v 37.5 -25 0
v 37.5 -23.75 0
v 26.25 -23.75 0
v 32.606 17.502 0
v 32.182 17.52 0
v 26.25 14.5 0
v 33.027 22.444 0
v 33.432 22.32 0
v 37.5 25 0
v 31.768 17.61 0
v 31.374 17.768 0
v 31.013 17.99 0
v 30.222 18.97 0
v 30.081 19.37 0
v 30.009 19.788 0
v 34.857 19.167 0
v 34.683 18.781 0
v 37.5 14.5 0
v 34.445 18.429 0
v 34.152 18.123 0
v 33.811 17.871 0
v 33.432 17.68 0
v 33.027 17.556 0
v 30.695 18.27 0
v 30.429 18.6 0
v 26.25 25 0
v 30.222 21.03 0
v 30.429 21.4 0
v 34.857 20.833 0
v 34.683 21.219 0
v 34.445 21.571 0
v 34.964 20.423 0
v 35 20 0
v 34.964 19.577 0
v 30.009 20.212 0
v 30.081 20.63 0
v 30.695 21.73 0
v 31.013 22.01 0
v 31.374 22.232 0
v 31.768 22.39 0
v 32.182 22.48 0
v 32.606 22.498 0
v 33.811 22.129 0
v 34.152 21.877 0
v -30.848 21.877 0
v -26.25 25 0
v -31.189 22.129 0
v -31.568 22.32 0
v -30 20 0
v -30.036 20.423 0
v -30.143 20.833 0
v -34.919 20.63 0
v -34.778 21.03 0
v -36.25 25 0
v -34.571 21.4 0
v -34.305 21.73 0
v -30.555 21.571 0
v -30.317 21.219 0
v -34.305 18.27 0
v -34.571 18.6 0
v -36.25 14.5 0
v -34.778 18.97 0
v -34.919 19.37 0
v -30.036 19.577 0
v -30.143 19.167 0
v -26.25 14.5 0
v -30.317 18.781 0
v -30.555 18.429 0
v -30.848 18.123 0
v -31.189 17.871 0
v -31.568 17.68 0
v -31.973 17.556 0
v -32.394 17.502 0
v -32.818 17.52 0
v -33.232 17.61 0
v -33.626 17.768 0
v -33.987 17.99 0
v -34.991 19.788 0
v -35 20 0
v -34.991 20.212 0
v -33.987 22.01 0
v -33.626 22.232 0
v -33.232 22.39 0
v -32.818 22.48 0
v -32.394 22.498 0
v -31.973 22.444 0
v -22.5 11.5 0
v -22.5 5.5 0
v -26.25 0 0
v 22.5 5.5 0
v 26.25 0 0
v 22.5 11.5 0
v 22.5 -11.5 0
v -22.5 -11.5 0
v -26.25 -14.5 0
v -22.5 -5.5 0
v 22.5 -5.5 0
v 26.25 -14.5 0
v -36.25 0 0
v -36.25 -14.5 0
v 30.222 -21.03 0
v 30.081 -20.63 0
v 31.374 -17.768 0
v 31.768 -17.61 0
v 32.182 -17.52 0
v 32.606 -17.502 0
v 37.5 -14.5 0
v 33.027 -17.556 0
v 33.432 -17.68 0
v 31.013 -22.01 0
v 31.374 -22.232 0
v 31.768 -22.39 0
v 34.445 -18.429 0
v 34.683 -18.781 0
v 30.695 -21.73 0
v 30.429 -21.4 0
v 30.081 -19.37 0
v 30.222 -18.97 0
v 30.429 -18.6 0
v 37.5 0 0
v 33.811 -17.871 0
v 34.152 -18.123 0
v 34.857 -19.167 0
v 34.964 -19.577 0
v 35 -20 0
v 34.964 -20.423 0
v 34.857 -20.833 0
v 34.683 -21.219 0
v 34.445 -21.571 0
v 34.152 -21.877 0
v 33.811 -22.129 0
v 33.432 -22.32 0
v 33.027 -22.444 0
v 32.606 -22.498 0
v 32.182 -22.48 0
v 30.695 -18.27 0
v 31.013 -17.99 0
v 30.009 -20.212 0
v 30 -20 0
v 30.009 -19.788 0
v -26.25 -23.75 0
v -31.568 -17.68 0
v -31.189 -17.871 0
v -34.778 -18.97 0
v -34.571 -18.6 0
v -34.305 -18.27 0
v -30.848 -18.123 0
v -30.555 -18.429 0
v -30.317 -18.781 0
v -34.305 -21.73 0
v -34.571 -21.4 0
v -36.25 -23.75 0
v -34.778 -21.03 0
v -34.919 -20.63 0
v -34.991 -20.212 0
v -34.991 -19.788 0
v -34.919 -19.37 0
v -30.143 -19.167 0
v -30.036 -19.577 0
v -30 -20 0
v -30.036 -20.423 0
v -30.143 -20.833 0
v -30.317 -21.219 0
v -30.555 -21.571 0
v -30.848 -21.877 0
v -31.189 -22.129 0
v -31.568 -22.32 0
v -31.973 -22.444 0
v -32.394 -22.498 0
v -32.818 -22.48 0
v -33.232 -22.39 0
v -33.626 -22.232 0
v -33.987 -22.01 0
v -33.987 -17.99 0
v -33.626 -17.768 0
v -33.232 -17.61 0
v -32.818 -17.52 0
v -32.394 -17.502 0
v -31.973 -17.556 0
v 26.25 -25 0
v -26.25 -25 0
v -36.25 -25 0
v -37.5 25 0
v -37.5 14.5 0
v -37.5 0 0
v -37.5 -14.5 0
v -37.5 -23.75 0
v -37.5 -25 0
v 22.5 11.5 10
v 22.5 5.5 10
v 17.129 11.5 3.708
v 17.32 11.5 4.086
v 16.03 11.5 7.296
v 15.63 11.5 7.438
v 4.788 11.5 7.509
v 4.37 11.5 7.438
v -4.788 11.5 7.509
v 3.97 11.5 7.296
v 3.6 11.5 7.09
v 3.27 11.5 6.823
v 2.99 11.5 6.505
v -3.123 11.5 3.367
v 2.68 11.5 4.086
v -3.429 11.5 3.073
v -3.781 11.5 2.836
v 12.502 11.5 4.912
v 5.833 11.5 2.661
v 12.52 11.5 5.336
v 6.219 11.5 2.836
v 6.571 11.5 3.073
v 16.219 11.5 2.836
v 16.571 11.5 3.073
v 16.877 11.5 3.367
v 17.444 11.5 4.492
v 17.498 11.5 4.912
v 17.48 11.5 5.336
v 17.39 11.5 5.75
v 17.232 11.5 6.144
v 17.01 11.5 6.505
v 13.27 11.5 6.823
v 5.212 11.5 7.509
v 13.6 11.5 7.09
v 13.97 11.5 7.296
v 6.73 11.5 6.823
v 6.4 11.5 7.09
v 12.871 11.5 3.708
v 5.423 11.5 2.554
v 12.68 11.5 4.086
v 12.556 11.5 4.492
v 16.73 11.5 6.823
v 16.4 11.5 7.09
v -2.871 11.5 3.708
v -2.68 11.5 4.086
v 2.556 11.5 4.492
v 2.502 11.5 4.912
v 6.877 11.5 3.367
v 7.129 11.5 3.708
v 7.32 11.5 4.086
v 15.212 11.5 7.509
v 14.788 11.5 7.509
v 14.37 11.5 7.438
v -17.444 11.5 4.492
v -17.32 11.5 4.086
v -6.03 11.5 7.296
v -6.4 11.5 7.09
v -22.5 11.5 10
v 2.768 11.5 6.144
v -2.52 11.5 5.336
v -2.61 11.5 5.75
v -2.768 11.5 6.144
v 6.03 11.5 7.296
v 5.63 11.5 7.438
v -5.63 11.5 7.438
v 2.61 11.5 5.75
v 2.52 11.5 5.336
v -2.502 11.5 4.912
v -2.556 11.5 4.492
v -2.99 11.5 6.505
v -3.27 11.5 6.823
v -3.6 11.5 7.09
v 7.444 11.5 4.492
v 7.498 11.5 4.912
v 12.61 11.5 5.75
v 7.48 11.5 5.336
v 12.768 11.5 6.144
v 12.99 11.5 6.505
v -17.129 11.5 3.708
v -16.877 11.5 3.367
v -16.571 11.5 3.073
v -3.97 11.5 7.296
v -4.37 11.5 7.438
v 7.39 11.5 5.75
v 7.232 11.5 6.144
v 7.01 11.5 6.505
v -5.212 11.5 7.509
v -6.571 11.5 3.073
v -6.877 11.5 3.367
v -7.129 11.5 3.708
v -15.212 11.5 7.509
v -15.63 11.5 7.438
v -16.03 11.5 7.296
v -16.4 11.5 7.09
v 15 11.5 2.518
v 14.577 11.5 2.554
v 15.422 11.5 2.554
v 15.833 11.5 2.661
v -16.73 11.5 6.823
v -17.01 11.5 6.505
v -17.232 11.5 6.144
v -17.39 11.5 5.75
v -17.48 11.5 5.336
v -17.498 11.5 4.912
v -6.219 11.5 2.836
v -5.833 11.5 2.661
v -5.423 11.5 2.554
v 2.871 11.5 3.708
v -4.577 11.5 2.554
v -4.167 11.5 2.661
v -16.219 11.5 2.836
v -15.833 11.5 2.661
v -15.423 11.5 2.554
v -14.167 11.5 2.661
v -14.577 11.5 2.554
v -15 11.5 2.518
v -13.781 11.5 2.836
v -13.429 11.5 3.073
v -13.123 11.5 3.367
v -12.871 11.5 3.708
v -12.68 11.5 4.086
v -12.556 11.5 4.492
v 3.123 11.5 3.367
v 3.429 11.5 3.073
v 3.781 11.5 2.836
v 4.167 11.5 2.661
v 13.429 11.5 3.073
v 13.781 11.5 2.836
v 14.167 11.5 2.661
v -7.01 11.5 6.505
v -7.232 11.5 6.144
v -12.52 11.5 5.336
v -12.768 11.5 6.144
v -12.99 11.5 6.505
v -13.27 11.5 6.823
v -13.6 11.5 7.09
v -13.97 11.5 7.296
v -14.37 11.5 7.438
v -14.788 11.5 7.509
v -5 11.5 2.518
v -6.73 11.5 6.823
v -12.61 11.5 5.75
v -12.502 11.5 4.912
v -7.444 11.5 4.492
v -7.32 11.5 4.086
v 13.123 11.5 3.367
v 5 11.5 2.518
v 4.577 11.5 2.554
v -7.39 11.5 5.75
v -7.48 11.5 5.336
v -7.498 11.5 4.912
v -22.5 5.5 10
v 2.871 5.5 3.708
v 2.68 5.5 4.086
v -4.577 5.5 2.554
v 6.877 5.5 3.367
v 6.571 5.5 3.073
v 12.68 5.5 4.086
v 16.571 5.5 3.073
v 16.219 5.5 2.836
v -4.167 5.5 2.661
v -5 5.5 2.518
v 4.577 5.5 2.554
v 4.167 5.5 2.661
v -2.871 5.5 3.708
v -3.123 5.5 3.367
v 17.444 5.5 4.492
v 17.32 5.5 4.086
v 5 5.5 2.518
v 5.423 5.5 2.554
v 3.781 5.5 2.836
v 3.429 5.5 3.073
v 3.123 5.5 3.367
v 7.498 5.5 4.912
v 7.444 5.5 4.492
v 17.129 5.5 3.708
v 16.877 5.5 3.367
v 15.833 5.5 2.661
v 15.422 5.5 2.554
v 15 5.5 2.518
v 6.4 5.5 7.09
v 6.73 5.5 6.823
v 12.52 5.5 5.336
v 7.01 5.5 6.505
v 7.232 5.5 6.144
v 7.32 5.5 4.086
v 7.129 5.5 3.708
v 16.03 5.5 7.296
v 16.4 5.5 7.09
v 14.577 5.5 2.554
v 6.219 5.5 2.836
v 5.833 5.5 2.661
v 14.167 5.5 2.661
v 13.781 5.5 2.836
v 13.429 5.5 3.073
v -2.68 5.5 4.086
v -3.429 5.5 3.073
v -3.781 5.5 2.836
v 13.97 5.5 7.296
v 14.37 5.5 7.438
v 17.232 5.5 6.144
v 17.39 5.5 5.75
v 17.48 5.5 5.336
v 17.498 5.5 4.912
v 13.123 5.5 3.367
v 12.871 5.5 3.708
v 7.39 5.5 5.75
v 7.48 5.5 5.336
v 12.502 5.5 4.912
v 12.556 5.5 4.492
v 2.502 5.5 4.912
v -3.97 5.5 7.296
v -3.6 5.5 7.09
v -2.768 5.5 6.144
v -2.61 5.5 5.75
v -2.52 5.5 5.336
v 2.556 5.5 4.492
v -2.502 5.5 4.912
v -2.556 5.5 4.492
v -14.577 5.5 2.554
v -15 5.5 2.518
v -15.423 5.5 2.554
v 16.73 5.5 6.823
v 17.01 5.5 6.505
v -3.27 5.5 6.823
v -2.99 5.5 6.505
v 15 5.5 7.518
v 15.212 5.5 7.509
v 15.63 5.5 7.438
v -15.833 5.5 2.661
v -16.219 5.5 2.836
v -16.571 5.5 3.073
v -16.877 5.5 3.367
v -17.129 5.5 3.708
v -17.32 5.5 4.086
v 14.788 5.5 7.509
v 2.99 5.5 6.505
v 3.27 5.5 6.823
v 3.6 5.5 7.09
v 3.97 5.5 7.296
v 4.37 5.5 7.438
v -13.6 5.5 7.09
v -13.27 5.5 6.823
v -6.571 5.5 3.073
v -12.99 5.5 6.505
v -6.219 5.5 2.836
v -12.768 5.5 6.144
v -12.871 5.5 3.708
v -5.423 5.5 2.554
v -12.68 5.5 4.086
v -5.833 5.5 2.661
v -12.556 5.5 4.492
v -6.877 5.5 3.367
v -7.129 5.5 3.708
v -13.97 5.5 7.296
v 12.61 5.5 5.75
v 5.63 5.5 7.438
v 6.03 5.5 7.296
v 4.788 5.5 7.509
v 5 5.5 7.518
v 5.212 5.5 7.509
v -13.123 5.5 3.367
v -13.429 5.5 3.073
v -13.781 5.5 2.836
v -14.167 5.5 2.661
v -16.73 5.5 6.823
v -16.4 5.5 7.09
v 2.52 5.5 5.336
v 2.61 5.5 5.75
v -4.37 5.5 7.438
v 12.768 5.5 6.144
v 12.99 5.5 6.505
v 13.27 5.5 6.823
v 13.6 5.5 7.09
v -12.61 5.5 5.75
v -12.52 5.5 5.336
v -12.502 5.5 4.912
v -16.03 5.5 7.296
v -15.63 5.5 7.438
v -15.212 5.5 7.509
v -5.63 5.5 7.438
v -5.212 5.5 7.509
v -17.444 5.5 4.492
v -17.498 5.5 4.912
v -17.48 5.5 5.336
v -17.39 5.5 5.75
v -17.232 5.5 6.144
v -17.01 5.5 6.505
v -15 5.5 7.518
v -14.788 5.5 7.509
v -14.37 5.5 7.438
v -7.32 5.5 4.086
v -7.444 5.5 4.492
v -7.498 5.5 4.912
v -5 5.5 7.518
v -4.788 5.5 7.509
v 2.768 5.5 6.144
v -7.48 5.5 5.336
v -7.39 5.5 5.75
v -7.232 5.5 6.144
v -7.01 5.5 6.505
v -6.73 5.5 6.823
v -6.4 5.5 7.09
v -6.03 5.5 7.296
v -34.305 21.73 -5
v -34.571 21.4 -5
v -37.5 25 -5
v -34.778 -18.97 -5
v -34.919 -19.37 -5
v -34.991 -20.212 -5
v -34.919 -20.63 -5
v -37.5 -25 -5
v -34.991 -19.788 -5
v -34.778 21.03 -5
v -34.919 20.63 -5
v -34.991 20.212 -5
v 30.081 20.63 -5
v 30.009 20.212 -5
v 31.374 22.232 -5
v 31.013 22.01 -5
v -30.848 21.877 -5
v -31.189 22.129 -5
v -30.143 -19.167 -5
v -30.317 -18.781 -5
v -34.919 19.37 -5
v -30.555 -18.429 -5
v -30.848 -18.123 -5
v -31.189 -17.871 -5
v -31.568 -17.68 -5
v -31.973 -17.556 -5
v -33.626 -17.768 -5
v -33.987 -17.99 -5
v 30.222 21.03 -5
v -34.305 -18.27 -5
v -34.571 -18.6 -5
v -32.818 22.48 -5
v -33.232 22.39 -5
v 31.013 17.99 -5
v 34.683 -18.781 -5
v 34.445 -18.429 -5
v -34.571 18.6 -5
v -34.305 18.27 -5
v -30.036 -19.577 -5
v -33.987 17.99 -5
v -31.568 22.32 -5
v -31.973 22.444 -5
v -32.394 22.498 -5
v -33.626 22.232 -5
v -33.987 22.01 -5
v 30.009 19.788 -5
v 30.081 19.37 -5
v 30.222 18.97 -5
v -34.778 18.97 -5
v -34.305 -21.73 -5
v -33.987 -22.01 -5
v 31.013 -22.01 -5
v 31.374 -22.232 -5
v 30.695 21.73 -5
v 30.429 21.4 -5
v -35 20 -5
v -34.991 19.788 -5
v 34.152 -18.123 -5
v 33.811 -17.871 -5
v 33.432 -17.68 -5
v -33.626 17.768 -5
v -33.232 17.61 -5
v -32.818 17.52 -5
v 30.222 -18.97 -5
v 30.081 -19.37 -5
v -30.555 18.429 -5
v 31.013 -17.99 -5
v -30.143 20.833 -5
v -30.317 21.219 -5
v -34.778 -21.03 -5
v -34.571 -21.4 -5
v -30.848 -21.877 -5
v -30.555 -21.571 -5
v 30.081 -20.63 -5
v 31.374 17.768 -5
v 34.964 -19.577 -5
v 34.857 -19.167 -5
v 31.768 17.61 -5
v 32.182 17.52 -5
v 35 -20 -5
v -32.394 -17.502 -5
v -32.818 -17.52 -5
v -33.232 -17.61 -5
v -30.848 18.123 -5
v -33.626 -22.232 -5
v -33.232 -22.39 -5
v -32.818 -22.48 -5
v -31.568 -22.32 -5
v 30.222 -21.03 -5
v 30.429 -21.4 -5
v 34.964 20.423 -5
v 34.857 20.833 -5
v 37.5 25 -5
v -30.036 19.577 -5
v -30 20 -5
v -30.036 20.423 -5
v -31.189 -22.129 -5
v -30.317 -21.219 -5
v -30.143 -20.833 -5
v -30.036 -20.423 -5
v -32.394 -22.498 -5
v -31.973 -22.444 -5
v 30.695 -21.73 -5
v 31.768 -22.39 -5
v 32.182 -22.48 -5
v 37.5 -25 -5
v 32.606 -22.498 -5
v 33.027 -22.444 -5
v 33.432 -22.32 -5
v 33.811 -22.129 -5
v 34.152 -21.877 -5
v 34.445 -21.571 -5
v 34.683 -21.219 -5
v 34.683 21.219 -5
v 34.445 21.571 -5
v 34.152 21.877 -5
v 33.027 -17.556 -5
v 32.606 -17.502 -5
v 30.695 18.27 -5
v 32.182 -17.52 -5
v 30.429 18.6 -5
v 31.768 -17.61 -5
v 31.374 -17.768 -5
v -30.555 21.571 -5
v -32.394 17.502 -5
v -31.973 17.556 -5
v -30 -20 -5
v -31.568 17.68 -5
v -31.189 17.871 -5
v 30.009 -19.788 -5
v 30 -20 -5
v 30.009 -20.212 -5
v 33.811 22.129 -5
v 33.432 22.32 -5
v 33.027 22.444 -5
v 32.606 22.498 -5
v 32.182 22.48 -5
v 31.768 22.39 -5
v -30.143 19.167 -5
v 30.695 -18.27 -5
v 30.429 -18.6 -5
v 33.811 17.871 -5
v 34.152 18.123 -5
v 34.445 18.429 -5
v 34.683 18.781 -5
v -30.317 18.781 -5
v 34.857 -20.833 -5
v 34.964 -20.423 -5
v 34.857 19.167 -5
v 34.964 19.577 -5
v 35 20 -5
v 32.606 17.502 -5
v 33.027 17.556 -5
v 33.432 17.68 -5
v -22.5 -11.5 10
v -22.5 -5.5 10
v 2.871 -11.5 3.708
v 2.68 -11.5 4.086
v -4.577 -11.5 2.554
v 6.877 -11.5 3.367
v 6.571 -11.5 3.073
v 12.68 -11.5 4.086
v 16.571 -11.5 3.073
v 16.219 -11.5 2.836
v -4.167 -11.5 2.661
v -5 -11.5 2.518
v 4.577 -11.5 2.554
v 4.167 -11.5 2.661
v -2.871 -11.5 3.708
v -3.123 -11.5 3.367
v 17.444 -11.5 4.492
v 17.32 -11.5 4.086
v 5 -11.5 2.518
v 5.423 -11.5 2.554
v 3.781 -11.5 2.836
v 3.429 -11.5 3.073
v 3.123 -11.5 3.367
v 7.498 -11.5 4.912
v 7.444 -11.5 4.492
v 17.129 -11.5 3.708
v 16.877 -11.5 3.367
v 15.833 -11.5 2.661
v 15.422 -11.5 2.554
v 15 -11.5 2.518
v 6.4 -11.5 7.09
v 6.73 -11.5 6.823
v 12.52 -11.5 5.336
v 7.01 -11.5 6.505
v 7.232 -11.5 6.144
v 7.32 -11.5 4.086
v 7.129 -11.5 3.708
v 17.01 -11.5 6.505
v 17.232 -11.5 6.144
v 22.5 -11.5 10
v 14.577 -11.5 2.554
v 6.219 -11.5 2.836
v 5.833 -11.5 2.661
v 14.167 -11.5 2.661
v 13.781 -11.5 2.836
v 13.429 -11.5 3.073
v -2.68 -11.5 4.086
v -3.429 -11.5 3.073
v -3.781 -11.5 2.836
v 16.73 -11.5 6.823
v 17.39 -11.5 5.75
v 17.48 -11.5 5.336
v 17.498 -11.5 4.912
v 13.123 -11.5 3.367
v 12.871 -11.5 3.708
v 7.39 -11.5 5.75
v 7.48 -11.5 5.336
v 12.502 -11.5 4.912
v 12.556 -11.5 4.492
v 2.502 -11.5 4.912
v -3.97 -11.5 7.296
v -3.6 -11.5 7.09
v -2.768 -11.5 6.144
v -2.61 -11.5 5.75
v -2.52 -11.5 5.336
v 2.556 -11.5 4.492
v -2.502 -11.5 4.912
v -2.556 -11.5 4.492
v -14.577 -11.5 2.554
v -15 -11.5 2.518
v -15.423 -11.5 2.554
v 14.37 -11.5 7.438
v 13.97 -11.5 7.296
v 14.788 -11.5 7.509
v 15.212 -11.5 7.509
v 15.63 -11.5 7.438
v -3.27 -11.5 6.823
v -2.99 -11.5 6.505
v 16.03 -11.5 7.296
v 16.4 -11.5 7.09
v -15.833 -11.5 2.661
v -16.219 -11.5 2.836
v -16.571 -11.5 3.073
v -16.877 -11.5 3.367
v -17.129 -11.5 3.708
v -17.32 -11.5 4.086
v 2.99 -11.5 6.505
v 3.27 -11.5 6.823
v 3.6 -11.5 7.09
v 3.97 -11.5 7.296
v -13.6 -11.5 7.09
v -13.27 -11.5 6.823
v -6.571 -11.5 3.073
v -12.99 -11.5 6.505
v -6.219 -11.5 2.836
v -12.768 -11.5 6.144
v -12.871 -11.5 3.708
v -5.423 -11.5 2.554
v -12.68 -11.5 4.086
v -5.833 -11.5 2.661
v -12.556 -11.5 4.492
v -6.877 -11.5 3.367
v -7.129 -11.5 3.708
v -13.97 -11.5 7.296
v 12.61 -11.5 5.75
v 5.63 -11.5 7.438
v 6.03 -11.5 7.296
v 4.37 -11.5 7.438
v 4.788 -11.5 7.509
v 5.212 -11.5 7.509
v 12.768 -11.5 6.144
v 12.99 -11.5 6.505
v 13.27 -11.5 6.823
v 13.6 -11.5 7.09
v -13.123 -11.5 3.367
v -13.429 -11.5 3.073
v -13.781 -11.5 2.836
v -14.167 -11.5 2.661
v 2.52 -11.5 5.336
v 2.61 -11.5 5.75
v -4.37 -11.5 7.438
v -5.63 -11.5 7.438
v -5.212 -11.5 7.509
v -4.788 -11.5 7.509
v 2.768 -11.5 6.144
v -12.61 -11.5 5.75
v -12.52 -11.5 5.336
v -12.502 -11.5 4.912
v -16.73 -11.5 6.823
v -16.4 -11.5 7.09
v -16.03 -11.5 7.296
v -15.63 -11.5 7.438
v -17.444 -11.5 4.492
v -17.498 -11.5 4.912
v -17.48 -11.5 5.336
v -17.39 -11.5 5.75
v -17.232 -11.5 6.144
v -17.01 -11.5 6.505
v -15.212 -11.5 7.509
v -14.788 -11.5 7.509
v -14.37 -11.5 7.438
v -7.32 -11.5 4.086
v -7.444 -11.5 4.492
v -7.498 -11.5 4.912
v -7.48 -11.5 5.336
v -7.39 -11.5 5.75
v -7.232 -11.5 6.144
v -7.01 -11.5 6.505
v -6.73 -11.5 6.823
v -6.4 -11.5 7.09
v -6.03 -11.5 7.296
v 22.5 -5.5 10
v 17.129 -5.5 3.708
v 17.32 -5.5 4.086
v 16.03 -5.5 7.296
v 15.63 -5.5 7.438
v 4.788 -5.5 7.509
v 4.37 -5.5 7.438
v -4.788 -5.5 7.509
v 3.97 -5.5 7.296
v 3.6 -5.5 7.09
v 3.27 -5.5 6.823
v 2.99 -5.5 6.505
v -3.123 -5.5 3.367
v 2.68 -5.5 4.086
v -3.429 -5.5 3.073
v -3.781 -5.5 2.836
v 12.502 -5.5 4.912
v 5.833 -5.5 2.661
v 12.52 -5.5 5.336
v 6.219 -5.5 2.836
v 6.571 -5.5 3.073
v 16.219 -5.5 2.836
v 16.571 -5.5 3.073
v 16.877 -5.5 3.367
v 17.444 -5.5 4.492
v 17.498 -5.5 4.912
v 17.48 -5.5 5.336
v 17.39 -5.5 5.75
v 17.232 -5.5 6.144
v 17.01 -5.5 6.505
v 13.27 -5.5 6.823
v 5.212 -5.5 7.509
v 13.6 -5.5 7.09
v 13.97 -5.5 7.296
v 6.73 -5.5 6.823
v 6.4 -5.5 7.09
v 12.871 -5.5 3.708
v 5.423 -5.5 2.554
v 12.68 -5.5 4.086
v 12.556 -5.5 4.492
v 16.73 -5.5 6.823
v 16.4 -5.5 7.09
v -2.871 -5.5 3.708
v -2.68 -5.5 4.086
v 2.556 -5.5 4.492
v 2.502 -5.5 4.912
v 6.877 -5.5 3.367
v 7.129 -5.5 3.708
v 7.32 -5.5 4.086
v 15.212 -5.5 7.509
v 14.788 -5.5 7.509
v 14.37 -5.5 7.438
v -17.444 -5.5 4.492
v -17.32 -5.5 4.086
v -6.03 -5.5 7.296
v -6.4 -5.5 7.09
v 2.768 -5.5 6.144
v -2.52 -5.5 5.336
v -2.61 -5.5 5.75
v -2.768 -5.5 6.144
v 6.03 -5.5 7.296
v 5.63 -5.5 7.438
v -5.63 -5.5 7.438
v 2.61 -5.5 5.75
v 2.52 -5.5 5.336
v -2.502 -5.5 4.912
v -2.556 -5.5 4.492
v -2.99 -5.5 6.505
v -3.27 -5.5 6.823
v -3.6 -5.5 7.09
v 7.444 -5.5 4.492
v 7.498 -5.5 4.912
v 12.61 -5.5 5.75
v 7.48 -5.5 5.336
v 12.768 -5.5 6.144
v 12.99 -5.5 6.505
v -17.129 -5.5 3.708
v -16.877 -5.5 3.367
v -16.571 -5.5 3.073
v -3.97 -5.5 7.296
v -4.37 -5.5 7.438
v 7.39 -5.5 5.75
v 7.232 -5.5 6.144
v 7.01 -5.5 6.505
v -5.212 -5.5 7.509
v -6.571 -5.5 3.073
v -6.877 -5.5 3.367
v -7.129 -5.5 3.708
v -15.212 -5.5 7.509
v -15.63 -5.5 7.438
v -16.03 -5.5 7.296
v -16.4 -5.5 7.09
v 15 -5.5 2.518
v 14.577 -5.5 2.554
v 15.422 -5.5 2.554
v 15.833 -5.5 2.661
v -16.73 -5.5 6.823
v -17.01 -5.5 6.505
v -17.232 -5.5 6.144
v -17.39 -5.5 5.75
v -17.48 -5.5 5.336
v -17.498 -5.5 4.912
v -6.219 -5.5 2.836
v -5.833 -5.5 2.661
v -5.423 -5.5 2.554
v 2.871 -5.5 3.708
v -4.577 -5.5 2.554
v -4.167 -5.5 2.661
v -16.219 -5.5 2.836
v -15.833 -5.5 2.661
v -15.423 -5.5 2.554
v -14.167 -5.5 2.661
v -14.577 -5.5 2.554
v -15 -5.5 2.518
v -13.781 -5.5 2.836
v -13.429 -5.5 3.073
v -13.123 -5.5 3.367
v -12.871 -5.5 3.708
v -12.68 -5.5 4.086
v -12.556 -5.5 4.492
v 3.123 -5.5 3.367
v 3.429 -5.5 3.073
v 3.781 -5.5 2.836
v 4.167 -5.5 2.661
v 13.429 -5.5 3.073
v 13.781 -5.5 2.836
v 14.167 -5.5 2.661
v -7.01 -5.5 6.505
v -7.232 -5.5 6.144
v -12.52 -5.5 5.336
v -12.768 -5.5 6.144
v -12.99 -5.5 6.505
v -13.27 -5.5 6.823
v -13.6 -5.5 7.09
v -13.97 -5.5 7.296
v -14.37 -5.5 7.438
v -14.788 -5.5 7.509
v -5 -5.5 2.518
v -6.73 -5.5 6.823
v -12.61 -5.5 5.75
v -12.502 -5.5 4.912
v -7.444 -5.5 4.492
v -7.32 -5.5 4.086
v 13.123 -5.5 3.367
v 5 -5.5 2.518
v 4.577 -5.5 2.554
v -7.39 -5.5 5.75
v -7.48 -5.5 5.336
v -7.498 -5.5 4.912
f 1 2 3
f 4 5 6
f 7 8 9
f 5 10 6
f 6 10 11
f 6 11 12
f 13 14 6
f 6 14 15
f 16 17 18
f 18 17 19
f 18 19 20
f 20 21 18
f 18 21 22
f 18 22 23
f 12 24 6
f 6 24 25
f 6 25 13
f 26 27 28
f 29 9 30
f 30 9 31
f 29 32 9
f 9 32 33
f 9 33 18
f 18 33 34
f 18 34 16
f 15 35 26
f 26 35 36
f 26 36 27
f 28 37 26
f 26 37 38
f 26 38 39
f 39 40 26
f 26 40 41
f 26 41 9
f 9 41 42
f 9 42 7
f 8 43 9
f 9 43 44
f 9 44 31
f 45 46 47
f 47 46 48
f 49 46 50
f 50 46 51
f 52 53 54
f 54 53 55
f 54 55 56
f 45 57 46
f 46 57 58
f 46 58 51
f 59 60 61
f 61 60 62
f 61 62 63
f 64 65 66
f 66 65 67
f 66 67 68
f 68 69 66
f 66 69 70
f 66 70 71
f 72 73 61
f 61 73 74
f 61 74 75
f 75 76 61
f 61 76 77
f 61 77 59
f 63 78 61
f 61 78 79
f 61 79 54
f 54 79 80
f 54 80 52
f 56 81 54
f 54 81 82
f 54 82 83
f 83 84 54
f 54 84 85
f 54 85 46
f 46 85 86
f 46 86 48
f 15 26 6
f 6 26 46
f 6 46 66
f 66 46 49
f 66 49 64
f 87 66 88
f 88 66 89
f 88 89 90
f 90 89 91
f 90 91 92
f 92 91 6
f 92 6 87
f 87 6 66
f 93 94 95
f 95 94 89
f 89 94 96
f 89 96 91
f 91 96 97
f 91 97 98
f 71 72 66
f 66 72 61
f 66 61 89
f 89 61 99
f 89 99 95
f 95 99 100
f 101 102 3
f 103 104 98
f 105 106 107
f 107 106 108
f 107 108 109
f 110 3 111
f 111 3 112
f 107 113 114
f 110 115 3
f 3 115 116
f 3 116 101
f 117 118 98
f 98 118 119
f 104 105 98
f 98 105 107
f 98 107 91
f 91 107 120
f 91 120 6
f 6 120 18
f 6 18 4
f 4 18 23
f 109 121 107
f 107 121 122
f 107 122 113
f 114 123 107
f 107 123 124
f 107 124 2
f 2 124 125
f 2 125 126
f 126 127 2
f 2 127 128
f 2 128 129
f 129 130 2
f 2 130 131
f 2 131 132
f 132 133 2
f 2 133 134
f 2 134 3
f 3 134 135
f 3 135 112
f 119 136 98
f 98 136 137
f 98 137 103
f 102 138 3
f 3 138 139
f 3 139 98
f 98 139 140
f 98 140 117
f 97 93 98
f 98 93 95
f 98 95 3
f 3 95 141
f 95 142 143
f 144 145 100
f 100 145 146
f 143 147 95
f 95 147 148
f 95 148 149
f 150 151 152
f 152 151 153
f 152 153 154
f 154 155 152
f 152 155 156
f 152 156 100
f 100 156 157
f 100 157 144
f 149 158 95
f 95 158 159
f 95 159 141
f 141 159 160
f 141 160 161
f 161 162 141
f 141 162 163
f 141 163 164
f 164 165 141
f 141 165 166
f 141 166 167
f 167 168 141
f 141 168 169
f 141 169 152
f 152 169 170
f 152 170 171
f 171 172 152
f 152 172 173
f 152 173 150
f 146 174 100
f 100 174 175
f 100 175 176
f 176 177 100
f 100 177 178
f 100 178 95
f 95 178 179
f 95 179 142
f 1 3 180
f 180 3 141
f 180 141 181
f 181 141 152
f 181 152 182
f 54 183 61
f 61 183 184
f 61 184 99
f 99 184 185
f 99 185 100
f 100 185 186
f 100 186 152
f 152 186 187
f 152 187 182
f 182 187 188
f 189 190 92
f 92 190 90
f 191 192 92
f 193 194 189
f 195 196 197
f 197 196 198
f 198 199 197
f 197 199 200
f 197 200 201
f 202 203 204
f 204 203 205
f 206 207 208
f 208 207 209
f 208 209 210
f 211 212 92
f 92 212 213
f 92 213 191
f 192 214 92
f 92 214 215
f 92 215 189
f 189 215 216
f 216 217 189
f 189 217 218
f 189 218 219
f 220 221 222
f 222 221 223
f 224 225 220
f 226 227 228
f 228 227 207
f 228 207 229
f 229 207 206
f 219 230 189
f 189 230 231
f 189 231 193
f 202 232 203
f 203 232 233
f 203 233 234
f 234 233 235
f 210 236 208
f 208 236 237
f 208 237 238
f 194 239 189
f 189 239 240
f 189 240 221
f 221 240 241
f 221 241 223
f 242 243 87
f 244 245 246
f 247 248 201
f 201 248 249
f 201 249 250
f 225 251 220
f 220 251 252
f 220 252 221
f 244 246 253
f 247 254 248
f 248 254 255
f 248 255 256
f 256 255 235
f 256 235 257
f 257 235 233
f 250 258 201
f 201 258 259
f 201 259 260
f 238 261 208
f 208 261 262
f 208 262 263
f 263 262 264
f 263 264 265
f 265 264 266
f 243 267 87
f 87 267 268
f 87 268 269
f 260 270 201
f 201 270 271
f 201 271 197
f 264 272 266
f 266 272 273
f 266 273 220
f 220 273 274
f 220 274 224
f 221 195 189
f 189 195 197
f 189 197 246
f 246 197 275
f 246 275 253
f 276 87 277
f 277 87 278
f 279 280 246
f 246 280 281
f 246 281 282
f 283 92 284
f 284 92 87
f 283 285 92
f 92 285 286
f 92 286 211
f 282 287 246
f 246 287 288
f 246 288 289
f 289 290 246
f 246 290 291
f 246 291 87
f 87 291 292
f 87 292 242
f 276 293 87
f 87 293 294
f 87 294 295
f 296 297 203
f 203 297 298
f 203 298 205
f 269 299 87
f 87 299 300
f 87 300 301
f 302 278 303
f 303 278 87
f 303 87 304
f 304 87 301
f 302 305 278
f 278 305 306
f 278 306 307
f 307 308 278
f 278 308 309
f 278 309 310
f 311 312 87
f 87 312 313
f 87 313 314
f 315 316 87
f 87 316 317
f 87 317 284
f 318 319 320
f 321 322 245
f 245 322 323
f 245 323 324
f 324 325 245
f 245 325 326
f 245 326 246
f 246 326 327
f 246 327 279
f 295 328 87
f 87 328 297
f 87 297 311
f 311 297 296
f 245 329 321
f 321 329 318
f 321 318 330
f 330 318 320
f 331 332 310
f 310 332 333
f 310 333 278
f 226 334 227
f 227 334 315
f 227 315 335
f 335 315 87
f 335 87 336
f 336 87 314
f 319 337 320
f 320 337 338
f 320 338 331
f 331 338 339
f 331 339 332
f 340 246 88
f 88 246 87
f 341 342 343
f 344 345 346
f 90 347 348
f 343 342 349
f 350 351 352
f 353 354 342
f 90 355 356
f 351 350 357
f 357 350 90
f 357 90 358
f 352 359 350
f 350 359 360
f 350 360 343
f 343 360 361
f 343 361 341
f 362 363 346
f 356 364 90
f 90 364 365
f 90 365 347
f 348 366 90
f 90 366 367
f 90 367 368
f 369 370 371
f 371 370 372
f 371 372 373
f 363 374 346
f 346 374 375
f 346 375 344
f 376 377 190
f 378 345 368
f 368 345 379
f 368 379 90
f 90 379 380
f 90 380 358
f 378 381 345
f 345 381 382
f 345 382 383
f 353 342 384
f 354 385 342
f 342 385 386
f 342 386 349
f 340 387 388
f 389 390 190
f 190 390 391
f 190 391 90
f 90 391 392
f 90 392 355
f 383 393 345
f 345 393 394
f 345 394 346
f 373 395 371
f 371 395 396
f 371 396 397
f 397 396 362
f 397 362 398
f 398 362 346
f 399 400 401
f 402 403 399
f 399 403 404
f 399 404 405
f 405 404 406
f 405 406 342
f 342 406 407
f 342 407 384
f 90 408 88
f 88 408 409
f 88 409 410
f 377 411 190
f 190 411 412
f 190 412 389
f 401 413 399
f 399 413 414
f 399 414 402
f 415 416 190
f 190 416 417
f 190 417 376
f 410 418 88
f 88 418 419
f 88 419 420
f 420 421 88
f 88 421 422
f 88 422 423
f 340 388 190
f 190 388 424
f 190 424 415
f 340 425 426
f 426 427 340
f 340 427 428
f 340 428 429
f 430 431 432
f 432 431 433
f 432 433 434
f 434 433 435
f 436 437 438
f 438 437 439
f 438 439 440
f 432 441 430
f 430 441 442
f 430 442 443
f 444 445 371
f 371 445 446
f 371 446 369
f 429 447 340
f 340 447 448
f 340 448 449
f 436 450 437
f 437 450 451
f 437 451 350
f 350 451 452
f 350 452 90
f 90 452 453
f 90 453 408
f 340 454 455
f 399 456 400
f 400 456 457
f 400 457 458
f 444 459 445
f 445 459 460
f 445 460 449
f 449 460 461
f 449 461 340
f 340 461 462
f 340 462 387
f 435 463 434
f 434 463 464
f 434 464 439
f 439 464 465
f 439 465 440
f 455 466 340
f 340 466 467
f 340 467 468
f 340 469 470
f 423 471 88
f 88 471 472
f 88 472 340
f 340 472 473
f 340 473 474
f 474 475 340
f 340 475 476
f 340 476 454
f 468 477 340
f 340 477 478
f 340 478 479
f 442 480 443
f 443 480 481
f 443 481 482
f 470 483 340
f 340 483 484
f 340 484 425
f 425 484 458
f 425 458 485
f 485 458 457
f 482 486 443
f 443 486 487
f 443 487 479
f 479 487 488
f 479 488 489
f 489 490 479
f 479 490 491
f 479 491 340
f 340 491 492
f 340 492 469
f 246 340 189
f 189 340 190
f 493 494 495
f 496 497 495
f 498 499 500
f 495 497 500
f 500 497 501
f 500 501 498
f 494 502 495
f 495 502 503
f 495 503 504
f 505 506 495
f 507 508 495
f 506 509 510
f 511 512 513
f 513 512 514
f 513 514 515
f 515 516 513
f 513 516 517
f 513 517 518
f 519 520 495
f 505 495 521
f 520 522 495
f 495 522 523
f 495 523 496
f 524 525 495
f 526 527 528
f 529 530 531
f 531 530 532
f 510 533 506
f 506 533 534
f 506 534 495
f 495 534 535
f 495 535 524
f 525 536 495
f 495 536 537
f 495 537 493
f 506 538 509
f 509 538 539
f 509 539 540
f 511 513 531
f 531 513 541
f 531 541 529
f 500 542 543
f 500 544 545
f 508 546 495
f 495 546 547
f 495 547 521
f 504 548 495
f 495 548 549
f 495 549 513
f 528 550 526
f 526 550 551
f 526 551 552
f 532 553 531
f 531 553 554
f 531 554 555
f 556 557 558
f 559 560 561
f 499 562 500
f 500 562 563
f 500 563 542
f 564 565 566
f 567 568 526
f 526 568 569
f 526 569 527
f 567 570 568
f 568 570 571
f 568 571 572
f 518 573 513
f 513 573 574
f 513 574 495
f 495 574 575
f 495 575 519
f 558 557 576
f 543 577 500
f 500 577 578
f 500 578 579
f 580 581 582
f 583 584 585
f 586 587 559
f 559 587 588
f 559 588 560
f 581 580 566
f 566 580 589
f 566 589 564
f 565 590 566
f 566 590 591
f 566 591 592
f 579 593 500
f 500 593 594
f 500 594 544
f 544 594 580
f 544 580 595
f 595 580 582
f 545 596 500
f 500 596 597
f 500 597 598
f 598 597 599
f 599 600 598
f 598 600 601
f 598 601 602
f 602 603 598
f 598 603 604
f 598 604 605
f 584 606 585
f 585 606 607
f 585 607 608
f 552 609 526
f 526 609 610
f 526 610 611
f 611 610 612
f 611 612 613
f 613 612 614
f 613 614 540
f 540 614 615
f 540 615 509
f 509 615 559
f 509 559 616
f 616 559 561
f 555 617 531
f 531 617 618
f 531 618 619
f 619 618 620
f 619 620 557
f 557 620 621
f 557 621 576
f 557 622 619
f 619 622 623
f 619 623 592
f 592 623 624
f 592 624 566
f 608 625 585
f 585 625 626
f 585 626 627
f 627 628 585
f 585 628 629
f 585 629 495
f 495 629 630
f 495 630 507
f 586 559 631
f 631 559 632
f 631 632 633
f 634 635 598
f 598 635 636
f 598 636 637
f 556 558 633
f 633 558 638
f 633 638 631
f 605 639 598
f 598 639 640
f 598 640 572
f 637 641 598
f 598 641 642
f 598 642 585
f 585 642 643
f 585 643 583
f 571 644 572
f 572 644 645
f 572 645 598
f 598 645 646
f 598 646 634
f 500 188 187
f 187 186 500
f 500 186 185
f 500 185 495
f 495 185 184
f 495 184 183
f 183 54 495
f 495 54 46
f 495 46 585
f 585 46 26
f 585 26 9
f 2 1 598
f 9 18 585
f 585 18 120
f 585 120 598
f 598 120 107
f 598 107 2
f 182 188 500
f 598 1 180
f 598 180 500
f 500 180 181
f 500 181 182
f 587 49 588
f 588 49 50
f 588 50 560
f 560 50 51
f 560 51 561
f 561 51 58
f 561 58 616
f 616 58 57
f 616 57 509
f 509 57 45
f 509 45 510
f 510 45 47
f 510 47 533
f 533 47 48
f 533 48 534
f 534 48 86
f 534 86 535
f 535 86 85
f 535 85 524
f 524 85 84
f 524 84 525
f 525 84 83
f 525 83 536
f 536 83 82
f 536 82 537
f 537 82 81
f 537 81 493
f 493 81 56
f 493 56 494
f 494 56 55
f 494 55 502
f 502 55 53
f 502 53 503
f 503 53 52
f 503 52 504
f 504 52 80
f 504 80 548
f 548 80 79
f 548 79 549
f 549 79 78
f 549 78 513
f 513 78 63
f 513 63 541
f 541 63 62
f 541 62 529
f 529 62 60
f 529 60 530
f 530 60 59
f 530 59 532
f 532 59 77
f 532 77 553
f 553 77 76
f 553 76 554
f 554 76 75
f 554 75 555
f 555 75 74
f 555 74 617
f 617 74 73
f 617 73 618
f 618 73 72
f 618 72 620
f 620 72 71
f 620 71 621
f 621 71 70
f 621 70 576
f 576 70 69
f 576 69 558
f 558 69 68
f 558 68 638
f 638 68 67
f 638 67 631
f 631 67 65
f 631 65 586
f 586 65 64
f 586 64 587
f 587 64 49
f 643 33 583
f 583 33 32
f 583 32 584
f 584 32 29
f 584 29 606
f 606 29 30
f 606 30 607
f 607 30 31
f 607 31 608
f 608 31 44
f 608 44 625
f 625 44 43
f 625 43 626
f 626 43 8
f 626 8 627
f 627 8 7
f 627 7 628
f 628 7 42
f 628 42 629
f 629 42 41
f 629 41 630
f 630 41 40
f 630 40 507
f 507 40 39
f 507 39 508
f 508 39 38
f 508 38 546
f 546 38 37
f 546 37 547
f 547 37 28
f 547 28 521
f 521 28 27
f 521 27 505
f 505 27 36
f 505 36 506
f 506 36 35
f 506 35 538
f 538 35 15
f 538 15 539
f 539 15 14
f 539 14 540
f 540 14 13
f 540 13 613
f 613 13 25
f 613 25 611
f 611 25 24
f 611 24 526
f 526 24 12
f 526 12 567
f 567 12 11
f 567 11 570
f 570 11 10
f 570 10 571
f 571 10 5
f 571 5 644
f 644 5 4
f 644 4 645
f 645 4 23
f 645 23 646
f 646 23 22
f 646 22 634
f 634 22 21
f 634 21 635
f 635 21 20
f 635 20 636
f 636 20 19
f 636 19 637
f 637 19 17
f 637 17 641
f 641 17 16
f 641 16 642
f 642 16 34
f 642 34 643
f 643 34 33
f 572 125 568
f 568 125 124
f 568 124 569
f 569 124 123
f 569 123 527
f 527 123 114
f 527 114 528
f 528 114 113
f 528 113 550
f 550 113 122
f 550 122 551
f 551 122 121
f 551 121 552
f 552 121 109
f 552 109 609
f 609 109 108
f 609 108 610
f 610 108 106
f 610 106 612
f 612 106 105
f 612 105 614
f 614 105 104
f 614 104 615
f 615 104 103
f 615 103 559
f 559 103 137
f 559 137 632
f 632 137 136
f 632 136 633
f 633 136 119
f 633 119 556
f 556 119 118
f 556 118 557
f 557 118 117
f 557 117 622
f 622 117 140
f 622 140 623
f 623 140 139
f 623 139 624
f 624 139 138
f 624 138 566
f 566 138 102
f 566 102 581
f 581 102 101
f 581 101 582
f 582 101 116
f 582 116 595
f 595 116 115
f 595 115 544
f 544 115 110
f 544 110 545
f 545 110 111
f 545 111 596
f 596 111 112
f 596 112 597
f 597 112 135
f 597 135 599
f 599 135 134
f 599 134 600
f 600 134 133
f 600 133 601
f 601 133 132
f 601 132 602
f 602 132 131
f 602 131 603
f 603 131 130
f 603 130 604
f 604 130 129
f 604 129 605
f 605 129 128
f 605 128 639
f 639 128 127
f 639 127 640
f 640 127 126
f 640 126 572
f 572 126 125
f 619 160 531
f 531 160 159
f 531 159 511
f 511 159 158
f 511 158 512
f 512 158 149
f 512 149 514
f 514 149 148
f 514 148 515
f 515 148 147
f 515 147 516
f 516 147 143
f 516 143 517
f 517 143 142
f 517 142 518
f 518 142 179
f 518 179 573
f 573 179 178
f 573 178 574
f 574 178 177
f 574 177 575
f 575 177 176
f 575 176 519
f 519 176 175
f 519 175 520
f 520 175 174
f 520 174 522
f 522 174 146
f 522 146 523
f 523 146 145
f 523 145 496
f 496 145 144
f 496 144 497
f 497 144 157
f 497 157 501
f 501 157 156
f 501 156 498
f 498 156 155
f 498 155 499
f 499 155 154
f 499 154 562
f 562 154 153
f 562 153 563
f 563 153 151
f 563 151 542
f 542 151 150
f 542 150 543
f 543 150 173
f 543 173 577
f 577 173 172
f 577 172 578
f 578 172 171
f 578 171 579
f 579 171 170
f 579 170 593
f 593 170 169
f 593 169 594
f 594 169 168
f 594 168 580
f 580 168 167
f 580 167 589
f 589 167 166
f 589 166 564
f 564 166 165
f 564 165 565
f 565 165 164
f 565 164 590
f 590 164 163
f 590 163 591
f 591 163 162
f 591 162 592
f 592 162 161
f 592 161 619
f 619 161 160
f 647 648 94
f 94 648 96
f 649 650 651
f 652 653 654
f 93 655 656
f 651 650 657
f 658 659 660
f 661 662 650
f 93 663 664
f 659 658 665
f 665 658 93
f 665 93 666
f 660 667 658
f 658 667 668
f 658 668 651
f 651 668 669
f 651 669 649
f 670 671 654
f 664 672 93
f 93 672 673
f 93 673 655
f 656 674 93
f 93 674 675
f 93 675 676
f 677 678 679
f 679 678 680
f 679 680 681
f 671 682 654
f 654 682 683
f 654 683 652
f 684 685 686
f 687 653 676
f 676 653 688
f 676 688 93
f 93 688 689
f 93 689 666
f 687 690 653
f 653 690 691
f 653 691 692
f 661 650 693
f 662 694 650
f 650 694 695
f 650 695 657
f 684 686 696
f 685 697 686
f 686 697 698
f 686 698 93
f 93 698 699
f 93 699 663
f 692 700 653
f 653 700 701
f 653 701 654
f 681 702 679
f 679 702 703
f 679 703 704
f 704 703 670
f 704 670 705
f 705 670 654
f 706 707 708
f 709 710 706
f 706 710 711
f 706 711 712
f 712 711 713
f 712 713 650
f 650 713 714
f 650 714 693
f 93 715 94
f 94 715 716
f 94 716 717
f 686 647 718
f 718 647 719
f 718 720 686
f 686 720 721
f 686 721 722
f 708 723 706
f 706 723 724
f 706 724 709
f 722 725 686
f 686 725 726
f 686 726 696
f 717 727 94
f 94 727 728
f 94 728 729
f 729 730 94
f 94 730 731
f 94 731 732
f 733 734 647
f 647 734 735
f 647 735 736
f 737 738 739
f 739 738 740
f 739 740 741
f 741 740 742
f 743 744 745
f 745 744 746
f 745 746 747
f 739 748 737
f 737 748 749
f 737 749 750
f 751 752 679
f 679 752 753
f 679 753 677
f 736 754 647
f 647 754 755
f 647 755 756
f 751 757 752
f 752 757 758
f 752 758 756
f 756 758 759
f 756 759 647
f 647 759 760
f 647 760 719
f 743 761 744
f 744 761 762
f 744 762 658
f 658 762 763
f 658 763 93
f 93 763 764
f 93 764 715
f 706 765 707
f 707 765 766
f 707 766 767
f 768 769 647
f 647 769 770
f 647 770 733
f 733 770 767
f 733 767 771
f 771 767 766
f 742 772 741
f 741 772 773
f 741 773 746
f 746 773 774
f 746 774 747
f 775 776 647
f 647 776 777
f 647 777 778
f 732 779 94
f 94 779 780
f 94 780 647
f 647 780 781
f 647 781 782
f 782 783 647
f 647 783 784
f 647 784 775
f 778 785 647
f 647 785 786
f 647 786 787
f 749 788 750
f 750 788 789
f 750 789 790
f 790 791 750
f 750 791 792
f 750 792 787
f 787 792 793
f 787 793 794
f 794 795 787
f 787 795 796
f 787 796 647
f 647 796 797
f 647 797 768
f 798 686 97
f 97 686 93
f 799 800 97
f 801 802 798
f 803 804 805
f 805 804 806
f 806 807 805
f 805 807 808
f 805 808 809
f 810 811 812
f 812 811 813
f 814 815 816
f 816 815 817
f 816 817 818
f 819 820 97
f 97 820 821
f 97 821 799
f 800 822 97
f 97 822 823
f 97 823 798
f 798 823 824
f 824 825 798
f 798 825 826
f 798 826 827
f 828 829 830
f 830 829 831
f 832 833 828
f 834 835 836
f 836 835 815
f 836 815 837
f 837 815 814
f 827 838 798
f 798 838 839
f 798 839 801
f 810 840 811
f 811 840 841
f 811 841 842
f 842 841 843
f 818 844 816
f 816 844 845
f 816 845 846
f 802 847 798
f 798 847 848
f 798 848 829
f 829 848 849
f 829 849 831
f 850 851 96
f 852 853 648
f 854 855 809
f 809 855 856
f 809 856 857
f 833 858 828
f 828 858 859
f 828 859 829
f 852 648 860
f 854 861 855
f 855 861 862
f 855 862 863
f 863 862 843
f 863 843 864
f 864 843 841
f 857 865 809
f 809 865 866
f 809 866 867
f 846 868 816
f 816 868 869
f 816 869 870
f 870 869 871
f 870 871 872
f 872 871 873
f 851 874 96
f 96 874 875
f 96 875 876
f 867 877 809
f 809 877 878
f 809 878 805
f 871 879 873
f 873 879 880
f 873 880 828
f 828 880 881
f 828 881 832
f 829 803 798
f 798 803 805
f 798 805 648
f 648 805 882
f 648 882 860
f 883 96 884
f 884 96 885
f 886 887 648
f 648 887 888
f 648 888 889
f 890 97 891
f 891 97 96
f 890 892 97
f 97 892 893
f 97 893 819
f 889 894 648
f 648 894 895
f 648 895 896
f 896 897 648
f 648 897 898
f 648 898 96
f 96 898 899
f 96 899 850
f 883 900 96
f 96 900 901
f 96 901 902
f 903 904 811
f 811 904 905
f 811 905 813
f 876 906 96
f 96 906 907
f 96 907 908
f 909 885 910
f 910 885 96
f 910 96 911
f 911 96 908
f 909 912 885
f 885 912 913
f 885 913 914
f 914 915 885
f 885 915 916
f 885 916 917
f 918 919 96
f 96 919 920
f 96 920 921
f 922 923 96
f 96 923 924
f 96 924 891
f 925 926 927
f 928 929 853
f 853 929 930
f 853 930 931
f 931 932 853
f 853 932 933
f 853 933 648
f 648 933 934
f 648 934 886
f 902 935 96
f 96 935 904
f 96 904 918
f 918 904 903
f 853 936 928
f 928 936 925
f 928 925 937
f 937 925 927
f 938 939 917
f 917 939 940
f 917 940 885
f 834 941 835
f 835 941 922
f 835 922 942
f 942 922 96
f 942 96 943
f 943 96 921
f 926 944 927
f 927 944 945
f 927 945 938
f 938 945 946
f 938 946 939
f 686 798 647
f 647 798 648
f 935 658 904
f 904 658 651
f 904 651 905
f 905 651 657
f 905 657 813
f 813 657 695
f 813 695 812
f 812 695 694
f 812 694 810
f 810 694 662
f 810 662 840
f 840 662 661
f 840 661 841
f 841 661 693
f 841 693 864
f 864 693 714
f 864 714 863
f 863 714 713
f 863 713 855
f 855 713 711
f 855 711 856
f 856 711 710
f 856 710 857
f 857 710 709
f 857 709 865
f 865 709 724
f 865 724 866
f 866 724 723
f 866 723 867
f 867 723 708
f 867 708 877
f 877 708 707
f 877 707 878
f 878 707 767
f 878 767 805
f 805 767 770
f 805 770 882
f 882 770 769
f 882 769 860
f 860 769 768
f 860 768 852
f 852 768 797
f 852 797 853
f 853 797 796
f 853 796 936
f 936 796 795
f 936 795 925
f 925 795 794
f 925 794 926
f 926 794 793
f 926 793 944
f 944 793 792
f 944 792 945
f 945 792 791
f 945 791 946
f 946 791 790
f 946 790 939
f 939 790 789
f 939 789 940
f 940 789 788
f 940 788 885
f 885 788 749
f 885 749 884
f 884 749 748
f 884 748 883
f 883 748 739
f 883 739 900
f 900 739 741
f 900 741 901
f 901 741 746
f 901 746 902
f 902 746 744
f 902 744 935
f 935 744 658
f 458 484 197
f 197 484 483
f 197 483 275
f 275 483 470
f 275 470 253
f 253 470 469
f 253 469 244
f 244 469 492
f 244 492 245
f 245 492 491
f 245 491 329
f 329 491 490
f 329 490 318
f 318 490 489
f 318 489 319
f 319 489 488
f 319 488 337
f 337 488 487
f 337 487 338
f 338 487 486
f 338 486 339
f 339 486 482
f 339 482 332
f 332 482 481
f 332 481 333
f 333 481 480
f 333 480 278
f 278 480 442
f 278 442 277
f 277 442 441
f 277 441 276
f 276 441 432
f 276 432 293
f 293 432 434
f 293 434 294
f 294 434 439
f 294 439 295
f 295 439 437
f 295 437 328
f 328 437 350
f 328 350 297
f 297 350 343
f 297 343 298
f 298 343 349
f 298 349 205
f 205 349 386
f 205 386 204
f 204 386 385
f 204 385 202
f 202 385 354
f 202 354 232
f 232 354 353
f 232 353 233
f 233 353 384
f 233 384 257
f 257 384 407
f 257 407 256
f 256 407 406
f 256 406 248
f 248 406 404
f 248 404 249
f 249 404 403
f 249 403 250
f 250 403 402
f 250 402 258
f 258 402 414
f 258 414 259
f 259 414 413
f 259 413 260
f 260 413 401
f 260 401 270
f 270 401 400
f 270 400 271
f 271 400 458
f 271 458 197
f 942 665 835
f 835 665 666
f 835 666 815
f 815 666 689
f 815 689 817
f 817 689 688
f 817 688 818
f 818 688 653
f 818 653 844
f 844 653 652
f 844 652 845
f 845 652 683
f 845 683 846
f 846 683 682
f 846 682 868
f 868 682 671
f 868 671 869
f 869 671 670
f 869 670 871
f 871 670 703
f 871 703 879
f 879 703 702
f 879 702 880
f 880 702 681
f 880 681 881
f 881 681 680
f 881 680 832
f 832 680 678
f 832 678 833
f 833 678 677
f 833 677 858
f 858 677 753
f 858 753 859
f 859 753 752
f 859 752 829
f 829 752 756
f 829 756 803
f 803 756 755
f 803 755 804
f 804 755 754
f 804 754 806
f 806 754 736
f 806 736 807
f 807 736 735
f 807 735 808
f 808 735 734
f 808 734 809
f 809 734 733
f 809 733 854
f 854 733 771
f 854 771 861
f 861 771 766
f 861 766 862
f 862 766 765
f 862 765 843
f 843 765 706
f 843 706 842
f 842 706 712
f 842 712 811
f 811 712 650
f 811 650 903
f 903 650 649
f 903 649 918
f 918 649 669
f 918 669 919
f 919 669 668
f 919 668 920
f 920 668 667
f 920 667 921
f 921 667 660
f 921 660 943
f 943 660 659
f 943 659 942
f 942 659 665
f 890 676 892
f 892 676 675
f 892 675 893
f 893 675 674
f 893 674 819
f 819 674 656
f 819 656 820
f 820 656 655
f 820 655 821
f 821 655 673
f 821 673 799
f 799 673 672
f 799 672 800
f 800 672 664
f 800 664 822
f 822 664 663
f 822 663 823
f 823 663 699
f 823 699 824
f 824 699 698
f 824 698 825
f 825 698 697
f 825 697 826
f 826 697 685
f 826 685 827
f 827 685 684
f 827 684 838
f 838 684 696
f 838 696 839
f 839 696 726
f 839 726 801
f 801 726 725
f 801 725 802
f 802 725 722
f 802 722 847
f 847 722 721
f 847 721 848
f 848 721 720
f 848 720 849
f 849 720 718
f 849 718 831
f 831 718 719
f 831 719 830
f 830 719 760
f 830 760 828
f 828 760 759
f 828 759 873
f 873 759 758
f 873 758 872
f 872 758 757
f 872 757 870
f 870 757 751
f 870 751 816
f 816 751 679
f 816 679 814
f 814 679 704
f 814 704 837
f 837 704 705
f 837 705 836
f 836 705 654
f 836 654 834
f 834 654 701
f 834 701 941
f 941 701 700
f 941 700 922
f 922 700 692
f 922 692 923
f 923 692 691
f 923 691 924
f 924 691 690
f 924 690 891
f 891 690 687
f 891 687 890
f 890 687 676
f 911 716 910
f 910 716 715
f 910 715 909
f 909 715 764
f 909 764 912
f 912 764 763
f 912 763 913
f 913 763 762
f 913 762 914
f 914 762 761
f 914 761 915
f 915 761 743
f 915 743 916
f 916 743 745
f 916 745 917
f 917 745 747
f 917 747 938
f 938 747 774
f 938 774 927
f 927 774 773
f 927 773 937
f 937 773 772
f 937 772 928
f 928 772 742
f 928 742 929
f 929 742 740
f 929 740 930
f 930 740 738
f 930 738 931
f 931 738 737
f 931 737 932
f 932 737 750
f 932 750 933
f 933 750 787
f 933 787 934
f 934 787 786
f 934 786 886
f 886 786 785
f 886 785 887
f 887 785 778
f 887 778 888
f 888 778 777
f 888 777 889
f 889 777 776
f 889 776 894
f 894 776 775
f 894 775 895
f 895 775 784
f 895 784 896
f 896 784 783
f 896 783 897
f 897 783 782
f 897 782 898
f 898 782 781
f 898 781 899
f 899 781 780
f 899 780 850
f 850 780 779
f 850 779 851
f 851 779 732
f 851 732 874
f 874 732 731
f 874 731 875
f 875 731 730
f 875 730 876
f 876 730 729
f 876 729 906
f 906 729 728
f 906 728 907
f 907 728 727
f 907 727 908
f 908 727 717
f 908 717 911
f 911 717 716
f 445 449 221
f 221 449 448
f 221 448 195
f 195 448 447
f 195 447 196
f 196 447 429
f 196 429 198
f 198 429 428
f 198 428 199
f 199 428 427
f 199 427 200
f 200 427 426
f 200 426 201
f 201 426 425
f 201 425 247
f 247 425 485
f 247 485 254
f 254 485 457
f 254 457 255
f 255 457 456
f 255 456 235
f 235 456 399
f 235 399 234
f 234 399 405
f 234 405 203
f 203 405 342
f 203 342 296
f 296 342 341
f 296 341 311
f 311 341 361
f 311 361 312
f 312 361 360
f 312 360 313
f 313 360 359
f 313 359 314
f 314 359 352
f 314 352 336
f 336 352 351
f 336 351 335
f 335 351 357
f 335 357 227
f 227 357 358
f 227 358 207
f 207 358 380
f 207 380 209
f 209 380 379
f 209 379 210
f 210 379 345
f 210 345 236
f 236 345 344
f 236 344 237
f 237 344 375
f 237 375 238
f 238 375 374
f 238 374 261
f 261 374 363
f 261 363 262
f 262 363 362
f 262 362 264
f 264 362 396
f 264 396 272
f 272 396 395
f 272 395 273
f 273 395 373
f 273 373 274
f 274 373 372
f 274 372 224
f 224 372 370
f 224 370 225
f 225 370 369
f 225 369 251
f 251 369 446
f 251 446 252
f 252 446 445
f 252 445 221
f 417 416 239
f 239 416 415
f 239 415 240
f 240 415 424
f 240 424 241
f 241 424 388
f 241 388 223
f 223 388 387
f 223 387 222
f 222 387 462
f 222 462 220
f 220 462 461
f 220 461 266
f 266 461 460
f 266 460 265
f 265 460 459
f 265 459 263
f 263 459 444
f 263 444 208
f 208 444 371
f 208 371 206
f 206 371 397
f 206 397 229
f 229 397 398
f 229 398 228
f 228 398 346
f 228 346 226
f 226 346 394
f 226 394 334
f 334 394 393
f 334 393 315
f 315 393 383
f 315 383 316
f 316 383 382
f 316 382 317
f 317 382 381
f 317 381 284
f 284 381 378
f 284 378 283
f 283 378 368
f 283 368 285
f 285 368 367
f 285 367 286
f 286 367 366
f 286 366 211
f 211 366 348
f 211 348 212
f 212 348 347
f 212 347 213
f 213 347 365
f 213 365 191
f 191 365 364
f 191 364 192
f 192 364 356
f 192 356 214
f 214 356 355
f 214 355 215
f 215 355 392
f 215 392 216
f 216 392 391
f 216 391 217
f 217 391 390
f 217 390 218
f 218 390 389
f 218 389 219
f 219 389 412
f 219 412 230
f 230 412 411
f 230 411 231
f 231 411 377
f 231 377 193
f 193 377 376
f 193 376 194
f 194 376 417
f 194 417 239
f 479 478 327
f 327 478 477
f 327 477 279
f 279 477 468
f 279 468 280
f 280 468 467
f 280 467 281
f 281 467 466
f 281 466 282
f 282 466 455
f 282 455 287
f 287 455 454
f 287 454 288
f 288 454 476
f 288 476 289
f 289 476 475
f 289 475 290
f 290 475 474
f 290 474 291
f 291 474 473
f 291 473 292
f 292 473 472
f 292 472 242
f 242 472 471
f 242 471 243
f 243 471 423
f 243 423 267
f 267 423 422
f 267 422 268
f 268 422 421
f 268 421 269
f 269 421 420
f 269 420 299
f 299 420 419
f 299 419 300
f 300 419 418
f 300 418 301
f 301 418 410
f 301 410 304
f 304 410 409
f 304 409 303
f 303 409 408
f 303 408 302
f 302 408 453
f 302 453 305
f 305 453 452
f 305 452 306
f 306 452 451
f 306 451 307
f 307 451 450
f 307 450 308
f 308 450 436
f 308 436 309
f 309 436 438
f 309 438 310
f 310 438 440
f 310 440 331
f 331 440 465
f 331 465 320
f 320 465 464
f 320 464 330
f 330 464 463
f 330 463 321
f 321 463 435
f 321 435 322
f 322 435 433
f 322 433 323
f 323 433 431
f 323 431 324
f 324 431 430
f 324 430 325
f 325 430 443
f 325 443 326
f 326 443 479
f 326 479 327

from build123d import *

# Parameters (mm, degrees)
ESQUISSE1_W             = 45
ESQUISSE1_H             = 6
BOSS_EXTRU_1_DEPTH      = 10
BOSS_EXTRU_1_2_DEPTH    = 10
ESQUISSE2_W             = 75
ESQUISSE2_H             = 50
ESQUISSE2_R             = 2.5
BOSS_EXTRU_2_DEPTH      = 5
ENL_V_MAT_EXTRU_1_REACH = 55.278
ESQUISSE3_R             = 2.5


with BuildPart() as part:
    # Esquisse1 → Boss.-Extru.1 (new body)
    with BuildSketch(Plane.XY):
        with Locations((0, 8.5)):
            Rectangle(ESQUISSE1_W, ESQUISSE1_H)
    extrude(amount=BOSS_EXTRU_1_DEPTH)



with BuildPart() as body_2:
    # Esquisse1 → Boss.-Extru.1 2 (new body)
    with BuildSketch(Plane.XY):
        with Locations((0, -8.5)):
            Rectangle(ESQUISSE1_W, ESQUISSE1_H)
    extrude(amount=BOSS_EXTRU_1_2_DEPTH)


with BuildPart() as part_1:
    add(part.part)

    add(body_2.part)  # Boss.-Extru.2 merges body 2
    # Esquisse2 → Boss.-Extru.2 (add)
    with BuildSketch(Plane(origin=(0, 0, 0), x_dir=(-1, 0, 0), z_dir=(0, 0, -1))):
        Rectangle(ESQUISSE2_W, ESQUISSE2_H)
        with Locations((32.5, 20)):
            Circle(ESQUISSE2_R, mode=Mode.SUBTRACT)
        with Locations(Location((-32.5, 20, 0), (0, 0, 180))):
            Circle(ESQUISSE2_R, mode=Mode.SUBTRACT)
        with Locations((-32.5, -20)):
            Circle(ESQUISSE2_R, mode=Mode.SUBTRACT)
        with Locations(Location((32.5, -20, 0), (0, 0, 180))):
            Circle(ESQUISSE2_R, mode=Mode.SUBTRACT)
    extrude(amount=BOSS_EXTRU_2_DEPTH)

    # Enlèv. mat.-Extru.1: up to this face of the body (flat: up to its plane)
    enl_v_mat_extru_1_end = Plane(part_1.part.faces().sort_by_distance((0, 11.5, 5))[0])
    # Esquisse3 → Enlèv. mat.-Extru.1 (cut, up to the picked face)
    with BuildSketch(Plane.XZ.offset(11.5), mode=Mode.PRIVATE) as enl_v_mat_extru_1_sk1:
        with Locations(Location((-5, 5.0183964, 0), (0, 0, 270))):
            Circle(ESQUISSE3_R)
    enl_v_mat_extru_1_tool1 = split(extrude(enl_v_mat_extru_1_sk1.sketch, amount=-ENL_V_MAT_EXTRU_1_REACH, mode=Mode.PRIVATE), bisect_by=enl_v_mat_extru_1_end, keep=Keep.BOTH, mode=Mode.PRIVATE)
    # Esquisse3 → Enlèv. mat.-Extru.1 (cut, up to the picked face)
    with BuildSketch(Plane.XZ.offset(11.5), mode=Mode.PRIVATE) as enl_v_mat_extru_1_sk2:
        with Locations(Location((5, 5.0183964, 0), (0, 0, 270))):
            Circle(ESQUISSE3_R)
    enl_v_mat_extru_1_tool2 = split(extrude(enl_v_mat_extru_1_sk2.sketch, amount=-ENL_V_MAT_EXTRU_1_REACH, mode=Mode.PRIVATE), bisect_by=enl_v_mat_extru_1_end, keep=Keep.BOTH, mode=Mode.PRIVATE)
    # Esquisse3 → Enlèv. mat.-Extru.1 (cut, up to the picked face)
    with BuildSketch(Plane.XZ.offset(11.5), mode=Mode.PRIVATE) as enl_v_mat_extru_1_sk3:
        with Locations(Location((15, 5.0183964, 0), (0, 0, 270))):
            Circle(ESQUISSE3_R)
    enl_v_mat_extru_1_tool3 = split(extrude(enl_v_mat_extru_1_sk3.sketch, amount=-ENL_V_MAT_EXTRU_1_REACH, mode=Mode.PRIVATE), bisect_by=enl_v_mat_extru_1_end, keep=Keep.BOTH, mode=Mode.PRIVATE)
    # Esquisse3 → Enlèv. mat.-Extru.1 (cut, up to the picked face)
    with BuildSketch(Plane.XZ.offset(11.5), mode=Mode.PRIVATE) as enl_v_mat_extru_1_sk4:
        with Locations(Location((-15, 5.0183964, 0), (0, 0, 270))):
            Circle(ESQUISSE3_R)
    enl_v_mat_extru_1_tool4 = split(extrude(enl_v_mat_extru_1_sk4.sketch, amount=-ENL_V_MAT_EXTRU_1_REACH, mode=Mode.PRIVATE), bisect_by=enl_v_mat_extru_1_end, keep=Keep.BOTH, mode=Mode.PRIVATE)
    add(enl_v_mat_extru_1_tool1.solids().sort_by(Axis((-5, -11.5, 5.018396), (0, 1, 0)))[0], mode=Mode.SUBTRACT)
    add(enl_v_mat_extru_1_tool2.solids().sort_by(Axis((5, -11.5, 5.018396), (0, 1, 0)))[0], mode=Mode.SUBTRACT)
    add(enl_v_mat_extru_1_tool3.solids().sort_by(Axis((15, -11.5, 5.018396), (0, 1, 0)))[0], mode=Mode.SUBTRACT)
    add(enl_v_mat_extru_1_tool4.solids().sort_by(Axis((-15, -11.5, 5.018396), (0, 1, 0)))[0], mode=Mode.SUBTRACT)


solid = part_1.part
